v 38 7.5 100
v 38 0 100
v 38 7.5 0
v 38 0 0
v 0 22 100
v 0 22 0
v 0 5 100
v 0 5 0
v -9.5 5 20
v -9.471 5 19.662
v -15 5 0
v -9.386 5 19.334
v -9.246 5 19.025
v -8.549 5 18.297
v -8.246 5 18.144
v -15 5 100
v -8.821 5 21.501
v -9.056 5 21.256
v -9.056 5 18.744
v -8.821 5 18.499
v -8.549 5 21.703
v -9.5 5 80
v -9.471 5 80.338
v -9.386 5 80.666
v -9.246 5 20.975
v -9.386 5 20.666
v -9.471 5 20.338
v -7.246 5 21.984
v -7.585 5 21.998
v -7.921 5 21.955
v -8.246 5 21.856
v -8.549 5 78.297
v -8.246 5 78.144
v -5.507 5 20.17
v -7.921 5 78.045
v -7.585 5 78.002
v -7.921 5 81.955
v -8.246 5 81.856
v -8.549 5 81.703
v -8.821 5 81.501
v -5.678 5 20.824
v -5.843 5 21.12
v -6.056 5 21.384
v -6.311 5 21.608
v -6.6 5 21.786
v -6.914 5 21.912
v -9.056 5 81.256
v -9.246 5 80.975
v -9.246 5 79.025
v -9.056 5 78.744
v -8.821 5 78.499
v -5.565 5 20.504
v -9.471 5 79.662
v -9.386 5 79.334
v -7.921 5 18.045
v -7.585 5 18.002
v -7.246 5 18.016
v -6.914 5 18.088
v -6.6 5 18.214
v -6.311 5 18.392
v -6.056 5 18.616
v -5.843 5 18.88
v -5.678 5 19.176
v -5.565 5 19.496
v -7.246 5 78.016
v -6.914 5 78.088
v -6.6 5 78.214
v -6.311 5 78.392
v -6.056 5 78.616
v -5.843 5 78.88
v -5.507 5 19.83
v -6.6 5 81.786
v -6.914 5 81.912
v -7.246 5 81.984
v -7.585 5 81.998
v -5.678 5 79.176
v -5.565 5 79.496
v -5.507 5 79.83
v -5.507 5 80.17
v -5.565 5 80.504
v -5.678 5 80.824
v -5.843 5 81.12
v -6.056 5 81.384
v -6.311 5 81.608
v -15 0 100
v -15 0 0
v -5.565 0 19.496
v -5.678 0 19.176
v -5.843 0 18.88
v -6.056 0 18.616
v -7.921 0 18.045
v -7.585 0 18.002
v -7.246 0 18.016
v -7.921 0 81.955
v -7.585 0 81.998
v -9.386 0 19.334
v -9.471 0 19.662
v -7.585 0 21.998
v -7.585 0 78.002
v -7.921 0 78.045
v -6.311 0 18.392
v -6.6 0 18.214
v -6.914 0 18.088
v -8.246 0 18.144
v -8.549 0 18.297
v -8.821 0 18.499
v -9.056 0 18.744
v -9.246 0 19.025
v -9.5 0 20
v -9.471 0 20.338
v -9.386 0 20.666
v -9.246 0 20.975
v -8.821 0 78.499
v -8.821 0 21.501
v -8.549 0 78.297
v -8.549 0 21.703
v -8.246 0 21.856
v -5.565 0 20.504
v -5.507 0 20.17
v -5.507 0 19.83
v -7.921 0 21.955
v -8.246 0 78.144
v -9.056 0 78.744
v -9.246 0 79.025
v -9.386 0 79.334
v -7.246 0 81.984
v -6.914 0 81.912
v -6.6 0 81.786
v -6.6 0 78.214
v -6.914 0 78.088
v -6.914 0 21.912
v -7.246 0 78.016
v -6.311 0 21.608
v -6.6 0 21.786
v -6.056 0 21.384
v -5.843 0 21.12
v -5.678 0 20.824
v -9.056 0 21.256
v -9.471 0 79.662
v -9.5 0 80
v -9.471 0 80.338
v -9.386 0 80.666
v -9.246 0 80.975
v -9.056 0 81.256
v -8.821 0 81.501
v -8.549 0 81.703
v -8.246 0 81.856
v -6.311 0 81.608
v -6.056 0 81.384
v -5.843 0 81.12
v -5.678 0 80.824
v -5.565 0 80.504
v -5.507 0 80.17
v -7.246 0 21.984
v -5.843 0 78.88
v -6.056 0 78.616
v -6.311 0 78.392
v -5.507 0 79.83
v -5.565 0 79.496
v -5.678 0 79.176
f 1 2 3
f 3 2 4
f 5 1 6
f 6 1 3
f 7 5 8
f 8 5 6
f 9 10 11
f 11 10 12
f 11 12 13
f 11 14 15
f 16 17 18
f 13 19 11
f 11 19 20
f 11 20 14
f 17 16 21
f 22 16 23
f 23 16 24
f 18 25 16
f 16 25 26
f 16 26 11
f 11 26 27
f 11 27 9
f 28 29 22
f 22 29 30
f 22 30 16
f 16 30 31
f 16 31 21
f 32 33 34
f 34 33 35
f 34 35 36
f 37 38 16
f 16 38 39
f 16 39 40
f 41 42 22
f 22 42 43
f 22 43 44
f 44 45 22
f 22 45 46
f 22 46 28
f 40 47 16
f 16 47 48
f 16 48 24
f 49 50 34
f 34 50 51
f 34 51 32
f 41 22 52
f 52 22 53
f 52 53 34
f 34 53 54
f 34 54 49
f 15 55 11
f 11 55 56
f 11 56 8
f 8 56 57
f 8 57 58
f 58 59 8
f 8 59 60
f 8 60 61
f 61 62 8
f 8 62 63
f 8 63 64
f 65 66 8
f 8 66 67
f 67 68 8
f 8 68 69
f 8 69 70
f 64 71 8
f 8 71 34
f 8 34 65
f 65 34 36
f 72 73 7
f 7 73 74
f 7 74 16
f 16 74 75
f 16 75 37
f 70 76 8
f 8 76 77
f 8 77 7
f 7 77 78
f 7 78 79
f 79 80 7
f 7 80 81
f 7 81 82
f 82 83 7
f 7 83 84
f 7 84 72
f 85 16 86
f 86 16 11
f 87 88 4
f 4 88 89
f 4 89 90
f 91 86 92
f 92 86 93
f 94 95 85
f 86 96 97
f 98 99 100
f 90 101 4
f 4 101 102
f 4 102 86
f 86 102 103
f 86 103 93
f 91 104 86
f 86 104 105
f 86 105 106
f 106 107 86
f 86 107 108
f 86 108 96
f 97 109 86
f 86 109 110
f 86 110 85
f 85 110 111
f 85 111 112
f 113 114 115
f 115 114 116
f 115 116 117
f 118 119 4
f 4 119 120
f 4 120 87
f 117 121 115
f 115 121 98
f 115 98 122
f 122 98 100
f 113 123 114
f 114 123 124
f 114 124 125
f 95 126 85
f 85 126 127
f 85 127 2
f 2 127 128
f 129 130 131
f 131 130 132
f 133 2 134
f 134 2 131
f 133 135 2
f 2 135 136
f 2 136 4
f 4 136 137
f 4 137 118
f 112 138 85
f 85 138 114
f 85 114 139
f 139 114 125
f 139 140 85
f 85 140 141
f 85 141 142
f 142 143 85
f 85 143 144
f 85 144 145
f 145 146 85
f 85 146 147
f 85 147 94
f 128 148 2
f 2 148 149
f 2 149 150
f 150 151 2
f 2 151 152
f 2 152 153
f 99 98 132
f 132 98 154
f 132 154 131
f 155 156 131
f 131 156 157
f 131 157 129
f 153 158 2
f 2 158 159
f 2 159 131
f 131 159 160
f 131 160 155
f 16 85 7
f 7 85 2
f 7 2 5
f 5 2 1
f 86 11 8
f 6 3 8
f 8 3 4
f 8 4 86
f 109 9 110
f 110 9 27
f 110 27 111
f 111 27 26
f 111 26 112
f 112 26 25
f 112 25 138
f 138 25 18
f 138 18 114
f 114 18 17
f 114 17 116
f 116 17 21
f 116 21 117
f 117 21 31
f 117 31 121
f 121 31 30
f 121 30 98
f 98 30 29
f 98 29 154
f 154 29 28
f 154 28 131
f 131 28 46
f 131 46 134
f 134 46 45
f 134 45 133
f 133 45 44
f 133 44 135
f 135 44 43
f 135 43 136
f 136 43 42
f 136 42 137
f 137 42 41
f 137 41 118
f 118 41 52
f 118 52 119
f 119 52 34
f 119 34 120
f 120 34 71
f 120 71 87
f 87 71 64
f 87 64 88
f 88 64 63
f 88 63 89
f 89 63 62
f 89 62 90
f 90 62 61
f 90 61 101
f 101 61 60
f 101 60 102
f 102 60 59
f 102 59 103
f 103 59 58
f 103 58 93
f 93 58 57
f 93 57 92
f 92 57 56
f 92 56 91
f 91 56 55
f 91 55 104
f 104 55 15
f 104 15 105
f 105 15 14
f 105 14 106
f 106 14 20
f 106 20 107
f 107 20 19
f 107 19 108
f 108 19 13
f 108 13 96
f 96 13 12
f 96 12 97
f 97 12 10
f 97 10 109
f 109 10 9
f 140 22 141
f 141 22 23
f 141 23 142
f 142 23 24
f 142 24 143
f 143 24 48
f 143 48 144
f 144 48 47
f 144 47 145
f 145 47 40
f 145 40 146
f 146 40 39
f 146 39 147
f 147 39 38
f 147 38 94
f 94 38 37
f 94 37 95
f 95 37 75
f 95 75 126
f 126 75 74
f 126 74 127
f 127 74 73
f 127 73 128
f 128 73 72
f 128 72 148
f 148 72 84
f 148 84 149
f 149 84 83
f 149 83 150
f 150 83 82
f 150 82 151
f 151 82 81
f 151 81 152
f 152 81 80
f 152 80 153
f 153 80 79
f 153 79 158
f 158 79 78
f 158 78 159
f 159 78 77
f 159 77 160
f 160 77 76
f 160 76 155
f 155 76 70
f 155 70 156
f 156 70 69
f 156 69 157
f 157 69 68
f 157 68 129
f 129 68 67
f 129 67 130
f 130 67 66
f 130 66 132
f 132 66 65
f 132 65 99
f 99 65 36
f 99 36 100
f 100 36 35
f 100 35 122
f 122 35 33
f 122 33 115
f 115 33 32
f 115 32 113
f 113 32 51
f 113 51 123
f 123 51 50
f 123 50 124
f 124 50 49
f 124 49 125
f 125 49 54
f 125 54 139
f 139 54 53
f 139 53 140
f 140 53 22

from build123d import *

# Parameters (mm, degrees)
SALIENTE_EXTRUIR1_DEPTH = 100
CROQUIS2_R              = 2
CORTAR_EXTRUIR1_DEPTH   = 100


with BuildPart() as part:
    # Croquis1 → Saliente-Extruir1 (new body)
    with BuildSketch(Plane.XY):
        Polygon((0, 0), (-15, 0), (-15, 5), (0, 5), (0, 22), (38, 7.5), (38, 0), align=None)
    extrude(amount=SALIENTE_EXTRUIR1_DEPTH)

    # Croquis2 → Cortar-Extruir1 (cut)
    with BuildSketch(Plane(origin=(0, 5, 0), x_dir=(1, 0, 0), z_dir=(0, 1, 0))):
        with Locations((-7.5, -80)):
            Circle(CROQUIS2_R)
        with Locations((-7.5, -20)):
            Circle(CROQUIS2_R)
    extrude(amount=-CORTAR_EXTRUIR1_DEPTH, mode=Mode.SUBTRACT)


solid = part.part
